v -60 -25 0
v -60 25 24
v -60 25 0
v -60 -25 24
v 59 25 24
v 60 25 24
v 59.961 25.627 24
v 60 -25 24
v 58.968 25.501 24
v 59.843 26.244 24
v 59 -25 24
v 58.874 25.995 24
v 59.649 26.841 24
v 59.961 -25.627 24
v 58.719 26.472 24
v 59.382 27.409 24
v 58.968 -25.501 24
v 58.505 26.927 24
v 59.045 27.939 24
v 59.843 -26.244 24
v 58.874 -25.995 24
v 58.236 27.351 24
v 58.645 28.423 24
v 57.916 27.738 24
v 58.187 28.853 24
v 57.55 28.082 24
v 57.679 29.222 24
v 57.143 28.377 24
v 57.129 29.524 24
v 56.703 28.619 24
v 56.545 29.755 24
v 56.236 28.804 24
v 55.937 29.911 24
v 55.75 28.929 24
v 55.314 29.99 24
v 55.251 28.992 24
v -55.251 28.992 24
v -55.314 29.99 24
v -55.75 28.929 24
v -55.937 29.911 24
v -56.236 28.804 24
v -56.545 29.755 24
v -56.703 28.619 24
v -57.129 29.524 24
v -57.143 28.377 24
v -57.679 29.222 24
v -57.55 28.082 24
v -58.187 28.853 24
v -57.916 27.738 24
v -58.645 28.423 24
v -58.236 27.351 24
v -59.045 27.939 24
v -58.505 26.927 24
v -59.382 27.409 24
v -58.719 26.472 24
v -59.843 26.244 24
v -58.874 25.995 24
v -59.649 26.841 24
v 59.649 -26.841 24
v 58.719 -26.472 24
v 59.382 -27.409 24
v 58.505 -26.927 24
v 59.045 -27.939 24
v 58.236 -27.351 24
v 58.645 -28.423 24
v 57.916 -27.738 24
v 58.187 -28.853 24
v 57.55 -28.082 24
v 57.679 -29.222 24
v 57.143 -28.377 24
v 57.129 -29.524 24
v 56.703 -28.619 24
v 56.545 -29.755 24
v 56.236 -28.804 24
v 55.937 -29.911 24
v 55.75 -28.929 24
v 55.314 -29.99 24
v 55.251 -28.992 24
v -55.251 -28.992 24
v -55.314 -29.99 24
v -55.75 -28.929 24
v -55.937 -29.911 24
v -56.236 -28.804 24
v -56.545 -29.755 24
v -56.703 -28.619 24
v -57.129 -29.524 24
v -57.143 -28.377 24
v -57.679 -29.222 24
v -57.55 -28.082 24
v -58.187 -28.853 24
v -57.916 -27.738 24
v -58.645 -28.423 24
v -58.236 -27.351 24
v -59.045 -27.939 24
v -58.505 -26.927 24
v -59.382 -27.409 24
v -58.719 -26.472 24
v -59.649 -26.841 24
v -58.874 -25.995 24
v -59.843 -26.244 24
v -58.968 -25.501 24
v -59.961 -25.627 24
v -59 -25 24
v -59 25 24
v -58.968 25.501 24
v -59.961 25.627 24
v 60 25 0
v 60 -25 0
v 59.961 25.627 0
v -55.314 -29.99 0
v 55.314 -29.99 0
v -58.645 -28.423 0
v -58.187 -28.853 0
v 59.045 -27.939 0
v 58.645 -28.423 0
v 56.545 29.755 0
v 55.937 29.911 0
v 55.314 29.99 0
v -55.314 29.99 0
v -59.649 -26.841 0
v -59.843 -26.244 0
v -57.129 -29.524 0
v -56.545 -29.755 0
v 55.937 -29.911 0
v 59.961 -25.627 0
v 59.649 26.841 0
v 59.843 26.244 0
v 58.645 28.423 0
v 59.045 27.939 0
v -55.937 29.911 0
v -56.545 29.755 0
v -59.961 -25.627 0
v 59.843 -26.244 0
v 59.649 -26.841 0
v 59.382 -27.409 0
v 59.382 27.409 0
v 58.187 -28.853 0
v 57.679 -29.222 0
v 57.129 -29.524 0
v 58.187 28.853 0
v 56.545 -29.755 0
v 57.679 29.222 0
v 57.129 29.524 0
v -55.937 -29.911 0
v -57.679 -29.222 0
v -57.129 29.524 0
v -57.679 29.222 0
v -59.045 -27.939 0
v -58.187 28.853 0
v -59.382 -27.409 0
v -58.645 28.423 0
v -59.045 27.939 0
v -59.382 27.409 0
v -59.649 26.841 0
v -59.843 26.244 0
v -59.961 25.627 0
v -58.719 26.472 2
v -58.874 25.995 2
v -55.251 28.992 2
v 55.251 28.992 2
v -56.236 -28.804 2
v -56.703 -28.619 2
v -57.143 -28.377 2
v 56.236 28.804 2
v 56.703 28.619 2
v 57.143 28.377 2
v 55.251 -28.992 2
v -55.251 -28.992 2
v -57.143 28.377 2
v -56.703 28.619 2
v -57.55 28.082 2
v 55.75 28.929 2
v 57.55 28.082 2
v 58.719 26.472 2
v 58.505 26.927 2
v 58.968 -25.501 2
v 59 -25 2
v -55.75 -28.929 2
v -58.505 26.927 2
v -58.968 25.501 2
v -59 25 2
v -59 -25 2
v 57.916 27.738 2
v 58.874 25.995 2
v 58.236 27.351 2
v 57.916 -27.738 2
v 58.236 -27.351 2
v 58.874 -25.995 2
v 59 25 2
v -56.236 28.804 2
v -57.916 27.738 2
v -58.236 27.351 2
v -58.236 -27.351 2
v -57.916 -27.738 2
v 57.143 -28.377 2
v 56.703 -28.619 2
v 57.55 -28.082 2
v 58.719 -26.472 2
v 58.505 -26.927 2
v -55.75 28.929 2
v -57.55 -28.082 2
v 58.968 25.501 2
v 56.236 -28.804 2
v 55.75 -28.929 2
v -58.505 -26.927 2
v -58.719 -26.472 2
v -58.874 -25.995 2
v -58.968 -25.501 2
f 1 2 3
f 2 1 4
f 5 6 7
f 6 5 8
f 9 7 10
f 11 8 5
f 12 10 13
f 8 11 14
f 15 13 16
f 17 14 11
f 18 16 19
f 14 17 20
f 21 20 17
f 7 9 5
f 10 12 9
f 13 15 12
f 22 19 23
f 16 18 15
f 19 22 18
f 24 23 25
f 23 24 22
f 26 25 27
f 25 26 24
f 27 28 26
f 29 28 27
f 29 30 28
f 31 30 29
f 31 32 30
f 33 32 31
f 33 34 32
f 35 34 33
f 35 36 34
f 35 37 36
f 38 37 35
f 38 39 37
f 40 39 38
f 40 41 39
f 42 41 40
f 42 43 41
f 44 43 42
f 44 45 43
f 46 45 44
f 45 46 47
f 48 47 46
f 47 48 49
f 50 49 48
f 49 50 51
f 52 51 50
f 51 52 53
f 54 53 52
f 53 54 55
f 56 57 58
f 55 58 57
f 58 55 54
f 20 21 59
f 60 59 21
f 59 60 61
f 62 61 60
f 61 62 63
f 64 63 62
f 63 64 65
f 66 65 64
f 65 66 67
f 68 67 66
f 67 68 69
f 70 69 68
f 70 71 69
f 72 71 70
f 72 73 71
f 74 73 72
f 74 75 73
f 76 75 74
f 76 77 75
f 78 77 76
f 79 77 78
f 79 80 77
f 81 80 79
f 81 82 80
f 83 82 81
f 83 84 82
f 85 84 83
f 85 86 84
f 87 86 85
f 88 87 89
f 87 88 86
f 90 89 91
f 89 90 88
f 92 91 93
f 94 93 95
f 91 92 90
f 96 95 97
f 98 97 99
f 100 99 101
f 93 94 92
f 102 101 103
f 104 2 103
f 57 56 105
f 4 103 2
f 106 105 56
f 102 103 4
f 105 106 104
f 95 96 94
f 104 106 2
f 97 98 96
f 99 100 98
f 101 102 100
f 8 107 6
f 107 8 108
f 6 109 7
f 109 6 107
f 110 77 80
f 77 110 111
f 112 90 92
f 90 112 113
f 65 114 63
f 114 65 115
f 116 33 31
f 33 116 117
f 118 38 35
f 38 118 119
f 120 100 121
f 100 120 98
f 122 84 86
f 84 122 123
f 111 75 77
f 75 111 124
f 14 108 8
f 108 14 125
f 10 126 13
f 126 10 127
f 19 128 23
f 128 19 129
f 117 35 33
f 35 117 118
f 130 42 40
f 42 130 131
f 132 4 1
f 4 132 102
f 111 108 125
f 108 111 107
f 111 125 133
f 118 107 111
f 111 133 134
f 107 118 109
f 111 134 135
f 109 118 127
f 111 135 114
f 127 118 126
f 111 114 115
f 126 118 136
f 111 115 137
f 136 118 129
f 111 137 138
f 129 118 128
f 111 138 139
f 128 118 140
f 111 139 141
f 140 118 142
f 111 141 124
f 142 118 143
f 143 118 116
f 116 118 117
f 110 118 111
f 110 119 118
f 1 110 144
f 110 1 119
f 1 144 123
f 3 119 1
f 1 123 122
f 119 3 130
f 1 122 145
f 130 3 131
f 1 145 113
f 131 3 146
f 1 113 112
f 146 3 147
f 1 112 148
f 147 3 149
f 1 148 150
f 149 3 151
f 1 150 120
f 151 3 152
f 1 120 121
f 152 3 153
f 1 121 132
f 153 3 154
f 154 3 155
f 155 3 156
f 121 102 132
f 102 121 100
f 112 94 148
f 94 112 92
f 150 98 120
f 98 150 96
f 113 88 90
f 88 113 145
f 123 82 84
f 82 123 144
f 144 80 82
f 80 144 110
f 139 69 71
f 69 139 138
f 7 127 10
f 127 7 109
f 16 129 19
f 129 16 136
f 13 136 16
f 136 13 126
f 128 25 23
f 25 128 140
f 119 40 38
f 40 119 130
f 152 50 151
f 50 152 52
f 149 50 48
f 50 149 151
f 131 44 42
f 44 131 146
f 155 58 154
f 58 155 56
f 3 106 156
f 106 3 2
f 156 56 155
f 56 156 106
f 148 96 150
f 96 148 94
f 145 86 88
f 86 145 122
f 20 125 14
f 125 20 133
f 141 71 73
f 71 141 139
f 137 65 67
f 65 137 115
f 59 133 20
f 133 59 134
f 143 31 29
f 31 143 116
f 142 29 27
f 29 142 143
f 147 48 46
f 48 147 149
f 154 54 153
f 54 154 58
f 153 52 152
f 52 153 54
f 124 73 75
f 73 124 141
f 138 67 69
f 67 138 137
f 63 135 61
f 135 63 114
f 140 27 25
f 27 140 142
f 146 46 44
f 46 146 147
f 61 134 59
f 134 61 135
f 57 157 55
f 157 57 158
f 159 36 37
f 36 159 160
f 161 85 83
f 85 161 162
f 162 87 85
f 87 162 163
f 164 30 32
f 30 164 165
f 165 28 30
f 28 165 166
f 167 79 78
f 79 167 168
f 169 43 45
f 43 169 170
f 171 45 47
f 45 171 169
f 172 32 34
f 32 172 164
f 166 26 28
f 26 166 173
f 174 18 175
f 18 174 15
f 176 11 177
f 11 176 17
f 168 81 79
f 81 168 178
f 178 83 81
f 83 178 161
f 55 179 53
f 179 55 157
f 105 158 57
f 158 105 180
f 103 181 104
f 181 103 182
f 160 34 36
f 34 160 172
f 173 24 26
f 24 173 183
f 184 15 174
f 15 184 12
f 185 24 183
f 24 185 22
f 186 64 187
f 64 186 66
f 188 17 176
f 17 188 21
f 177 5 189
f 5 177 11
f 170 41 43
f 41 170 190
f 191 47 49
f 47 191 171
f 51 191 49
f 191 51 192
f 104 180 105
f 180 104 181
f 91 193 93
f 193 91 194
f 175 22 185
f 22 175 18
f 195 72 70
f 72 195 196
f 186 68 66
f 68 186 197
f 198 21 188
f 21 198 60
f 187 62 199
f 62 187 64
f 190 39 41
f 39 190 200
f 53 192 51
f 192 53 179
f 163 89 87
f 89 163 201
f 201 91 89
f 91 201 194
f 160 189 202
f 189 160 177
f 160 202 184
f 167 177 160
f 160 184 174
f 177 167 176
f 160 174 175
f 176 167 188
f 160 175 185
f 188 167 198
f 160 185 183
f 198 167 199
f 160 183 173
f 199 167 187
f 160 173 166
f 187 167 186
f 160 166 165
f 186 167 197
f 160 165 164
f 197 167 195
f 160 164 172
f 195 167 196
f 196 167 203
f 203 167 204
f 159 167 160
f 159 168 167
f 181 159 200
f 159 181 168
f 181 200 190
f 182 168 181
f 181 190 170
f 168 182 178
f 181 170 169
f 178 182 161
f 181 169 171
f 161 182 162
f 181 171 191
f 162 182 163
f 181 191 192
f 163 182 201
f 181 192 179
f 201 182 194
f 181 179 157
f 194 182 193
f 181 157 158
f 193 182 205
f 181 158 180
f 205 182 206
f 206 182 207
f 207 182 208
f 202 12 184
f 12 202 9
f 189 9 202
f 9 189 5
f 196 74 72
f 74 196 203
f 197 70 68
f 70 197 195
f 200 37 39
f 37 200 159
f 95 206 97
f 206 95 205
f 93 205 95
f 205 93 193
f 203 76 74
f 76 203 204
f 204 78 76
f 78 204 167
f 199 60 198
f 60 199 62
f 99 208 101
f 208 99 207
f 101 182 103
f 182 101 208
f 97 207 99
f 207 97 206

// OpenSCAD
$fn = 50;


difference() {
	union() {
		hull() {
			translate(v = [-55.0000000000, 25.0000000000, 0]) {
				cylinder(h = 24, r = 5);
			}
			translate(v = [55.0000000000, 25.0000000000, 0]) {
				cylinder(h = 24, r = 5);
			}
			translate(v = [-55.0000000000, -25.0000000000, 0]) {
				cylinder(h = 24, r = 5);
			}
			translate(v = [55.0000000000, -25.0000000000, 0]) {
				cylinder(h = 24, r = 5);
			}
		}
	}
	union() {
		translate(v = [0, 0, 2]) {
			hull() {
				translate(v = [-55.0000000000, 25.0000000000, 0]) {
					cylinder(h = 22, r = 4);
				}
				translate(v = [55.0000000000, 25.0000000000, 0]) {
					cylinder(h = 22, r = 4);
				}
				translate(v = [-55.0000000000, -25.0000000000, 0]) {
					cylinder(h = 22, r = 4);
				}
				translate(v = [55.0000000000, -25.0000000000, 0]) {
					cylinder(h = 22, r = 4);
				}
			}
		}
	}
}
